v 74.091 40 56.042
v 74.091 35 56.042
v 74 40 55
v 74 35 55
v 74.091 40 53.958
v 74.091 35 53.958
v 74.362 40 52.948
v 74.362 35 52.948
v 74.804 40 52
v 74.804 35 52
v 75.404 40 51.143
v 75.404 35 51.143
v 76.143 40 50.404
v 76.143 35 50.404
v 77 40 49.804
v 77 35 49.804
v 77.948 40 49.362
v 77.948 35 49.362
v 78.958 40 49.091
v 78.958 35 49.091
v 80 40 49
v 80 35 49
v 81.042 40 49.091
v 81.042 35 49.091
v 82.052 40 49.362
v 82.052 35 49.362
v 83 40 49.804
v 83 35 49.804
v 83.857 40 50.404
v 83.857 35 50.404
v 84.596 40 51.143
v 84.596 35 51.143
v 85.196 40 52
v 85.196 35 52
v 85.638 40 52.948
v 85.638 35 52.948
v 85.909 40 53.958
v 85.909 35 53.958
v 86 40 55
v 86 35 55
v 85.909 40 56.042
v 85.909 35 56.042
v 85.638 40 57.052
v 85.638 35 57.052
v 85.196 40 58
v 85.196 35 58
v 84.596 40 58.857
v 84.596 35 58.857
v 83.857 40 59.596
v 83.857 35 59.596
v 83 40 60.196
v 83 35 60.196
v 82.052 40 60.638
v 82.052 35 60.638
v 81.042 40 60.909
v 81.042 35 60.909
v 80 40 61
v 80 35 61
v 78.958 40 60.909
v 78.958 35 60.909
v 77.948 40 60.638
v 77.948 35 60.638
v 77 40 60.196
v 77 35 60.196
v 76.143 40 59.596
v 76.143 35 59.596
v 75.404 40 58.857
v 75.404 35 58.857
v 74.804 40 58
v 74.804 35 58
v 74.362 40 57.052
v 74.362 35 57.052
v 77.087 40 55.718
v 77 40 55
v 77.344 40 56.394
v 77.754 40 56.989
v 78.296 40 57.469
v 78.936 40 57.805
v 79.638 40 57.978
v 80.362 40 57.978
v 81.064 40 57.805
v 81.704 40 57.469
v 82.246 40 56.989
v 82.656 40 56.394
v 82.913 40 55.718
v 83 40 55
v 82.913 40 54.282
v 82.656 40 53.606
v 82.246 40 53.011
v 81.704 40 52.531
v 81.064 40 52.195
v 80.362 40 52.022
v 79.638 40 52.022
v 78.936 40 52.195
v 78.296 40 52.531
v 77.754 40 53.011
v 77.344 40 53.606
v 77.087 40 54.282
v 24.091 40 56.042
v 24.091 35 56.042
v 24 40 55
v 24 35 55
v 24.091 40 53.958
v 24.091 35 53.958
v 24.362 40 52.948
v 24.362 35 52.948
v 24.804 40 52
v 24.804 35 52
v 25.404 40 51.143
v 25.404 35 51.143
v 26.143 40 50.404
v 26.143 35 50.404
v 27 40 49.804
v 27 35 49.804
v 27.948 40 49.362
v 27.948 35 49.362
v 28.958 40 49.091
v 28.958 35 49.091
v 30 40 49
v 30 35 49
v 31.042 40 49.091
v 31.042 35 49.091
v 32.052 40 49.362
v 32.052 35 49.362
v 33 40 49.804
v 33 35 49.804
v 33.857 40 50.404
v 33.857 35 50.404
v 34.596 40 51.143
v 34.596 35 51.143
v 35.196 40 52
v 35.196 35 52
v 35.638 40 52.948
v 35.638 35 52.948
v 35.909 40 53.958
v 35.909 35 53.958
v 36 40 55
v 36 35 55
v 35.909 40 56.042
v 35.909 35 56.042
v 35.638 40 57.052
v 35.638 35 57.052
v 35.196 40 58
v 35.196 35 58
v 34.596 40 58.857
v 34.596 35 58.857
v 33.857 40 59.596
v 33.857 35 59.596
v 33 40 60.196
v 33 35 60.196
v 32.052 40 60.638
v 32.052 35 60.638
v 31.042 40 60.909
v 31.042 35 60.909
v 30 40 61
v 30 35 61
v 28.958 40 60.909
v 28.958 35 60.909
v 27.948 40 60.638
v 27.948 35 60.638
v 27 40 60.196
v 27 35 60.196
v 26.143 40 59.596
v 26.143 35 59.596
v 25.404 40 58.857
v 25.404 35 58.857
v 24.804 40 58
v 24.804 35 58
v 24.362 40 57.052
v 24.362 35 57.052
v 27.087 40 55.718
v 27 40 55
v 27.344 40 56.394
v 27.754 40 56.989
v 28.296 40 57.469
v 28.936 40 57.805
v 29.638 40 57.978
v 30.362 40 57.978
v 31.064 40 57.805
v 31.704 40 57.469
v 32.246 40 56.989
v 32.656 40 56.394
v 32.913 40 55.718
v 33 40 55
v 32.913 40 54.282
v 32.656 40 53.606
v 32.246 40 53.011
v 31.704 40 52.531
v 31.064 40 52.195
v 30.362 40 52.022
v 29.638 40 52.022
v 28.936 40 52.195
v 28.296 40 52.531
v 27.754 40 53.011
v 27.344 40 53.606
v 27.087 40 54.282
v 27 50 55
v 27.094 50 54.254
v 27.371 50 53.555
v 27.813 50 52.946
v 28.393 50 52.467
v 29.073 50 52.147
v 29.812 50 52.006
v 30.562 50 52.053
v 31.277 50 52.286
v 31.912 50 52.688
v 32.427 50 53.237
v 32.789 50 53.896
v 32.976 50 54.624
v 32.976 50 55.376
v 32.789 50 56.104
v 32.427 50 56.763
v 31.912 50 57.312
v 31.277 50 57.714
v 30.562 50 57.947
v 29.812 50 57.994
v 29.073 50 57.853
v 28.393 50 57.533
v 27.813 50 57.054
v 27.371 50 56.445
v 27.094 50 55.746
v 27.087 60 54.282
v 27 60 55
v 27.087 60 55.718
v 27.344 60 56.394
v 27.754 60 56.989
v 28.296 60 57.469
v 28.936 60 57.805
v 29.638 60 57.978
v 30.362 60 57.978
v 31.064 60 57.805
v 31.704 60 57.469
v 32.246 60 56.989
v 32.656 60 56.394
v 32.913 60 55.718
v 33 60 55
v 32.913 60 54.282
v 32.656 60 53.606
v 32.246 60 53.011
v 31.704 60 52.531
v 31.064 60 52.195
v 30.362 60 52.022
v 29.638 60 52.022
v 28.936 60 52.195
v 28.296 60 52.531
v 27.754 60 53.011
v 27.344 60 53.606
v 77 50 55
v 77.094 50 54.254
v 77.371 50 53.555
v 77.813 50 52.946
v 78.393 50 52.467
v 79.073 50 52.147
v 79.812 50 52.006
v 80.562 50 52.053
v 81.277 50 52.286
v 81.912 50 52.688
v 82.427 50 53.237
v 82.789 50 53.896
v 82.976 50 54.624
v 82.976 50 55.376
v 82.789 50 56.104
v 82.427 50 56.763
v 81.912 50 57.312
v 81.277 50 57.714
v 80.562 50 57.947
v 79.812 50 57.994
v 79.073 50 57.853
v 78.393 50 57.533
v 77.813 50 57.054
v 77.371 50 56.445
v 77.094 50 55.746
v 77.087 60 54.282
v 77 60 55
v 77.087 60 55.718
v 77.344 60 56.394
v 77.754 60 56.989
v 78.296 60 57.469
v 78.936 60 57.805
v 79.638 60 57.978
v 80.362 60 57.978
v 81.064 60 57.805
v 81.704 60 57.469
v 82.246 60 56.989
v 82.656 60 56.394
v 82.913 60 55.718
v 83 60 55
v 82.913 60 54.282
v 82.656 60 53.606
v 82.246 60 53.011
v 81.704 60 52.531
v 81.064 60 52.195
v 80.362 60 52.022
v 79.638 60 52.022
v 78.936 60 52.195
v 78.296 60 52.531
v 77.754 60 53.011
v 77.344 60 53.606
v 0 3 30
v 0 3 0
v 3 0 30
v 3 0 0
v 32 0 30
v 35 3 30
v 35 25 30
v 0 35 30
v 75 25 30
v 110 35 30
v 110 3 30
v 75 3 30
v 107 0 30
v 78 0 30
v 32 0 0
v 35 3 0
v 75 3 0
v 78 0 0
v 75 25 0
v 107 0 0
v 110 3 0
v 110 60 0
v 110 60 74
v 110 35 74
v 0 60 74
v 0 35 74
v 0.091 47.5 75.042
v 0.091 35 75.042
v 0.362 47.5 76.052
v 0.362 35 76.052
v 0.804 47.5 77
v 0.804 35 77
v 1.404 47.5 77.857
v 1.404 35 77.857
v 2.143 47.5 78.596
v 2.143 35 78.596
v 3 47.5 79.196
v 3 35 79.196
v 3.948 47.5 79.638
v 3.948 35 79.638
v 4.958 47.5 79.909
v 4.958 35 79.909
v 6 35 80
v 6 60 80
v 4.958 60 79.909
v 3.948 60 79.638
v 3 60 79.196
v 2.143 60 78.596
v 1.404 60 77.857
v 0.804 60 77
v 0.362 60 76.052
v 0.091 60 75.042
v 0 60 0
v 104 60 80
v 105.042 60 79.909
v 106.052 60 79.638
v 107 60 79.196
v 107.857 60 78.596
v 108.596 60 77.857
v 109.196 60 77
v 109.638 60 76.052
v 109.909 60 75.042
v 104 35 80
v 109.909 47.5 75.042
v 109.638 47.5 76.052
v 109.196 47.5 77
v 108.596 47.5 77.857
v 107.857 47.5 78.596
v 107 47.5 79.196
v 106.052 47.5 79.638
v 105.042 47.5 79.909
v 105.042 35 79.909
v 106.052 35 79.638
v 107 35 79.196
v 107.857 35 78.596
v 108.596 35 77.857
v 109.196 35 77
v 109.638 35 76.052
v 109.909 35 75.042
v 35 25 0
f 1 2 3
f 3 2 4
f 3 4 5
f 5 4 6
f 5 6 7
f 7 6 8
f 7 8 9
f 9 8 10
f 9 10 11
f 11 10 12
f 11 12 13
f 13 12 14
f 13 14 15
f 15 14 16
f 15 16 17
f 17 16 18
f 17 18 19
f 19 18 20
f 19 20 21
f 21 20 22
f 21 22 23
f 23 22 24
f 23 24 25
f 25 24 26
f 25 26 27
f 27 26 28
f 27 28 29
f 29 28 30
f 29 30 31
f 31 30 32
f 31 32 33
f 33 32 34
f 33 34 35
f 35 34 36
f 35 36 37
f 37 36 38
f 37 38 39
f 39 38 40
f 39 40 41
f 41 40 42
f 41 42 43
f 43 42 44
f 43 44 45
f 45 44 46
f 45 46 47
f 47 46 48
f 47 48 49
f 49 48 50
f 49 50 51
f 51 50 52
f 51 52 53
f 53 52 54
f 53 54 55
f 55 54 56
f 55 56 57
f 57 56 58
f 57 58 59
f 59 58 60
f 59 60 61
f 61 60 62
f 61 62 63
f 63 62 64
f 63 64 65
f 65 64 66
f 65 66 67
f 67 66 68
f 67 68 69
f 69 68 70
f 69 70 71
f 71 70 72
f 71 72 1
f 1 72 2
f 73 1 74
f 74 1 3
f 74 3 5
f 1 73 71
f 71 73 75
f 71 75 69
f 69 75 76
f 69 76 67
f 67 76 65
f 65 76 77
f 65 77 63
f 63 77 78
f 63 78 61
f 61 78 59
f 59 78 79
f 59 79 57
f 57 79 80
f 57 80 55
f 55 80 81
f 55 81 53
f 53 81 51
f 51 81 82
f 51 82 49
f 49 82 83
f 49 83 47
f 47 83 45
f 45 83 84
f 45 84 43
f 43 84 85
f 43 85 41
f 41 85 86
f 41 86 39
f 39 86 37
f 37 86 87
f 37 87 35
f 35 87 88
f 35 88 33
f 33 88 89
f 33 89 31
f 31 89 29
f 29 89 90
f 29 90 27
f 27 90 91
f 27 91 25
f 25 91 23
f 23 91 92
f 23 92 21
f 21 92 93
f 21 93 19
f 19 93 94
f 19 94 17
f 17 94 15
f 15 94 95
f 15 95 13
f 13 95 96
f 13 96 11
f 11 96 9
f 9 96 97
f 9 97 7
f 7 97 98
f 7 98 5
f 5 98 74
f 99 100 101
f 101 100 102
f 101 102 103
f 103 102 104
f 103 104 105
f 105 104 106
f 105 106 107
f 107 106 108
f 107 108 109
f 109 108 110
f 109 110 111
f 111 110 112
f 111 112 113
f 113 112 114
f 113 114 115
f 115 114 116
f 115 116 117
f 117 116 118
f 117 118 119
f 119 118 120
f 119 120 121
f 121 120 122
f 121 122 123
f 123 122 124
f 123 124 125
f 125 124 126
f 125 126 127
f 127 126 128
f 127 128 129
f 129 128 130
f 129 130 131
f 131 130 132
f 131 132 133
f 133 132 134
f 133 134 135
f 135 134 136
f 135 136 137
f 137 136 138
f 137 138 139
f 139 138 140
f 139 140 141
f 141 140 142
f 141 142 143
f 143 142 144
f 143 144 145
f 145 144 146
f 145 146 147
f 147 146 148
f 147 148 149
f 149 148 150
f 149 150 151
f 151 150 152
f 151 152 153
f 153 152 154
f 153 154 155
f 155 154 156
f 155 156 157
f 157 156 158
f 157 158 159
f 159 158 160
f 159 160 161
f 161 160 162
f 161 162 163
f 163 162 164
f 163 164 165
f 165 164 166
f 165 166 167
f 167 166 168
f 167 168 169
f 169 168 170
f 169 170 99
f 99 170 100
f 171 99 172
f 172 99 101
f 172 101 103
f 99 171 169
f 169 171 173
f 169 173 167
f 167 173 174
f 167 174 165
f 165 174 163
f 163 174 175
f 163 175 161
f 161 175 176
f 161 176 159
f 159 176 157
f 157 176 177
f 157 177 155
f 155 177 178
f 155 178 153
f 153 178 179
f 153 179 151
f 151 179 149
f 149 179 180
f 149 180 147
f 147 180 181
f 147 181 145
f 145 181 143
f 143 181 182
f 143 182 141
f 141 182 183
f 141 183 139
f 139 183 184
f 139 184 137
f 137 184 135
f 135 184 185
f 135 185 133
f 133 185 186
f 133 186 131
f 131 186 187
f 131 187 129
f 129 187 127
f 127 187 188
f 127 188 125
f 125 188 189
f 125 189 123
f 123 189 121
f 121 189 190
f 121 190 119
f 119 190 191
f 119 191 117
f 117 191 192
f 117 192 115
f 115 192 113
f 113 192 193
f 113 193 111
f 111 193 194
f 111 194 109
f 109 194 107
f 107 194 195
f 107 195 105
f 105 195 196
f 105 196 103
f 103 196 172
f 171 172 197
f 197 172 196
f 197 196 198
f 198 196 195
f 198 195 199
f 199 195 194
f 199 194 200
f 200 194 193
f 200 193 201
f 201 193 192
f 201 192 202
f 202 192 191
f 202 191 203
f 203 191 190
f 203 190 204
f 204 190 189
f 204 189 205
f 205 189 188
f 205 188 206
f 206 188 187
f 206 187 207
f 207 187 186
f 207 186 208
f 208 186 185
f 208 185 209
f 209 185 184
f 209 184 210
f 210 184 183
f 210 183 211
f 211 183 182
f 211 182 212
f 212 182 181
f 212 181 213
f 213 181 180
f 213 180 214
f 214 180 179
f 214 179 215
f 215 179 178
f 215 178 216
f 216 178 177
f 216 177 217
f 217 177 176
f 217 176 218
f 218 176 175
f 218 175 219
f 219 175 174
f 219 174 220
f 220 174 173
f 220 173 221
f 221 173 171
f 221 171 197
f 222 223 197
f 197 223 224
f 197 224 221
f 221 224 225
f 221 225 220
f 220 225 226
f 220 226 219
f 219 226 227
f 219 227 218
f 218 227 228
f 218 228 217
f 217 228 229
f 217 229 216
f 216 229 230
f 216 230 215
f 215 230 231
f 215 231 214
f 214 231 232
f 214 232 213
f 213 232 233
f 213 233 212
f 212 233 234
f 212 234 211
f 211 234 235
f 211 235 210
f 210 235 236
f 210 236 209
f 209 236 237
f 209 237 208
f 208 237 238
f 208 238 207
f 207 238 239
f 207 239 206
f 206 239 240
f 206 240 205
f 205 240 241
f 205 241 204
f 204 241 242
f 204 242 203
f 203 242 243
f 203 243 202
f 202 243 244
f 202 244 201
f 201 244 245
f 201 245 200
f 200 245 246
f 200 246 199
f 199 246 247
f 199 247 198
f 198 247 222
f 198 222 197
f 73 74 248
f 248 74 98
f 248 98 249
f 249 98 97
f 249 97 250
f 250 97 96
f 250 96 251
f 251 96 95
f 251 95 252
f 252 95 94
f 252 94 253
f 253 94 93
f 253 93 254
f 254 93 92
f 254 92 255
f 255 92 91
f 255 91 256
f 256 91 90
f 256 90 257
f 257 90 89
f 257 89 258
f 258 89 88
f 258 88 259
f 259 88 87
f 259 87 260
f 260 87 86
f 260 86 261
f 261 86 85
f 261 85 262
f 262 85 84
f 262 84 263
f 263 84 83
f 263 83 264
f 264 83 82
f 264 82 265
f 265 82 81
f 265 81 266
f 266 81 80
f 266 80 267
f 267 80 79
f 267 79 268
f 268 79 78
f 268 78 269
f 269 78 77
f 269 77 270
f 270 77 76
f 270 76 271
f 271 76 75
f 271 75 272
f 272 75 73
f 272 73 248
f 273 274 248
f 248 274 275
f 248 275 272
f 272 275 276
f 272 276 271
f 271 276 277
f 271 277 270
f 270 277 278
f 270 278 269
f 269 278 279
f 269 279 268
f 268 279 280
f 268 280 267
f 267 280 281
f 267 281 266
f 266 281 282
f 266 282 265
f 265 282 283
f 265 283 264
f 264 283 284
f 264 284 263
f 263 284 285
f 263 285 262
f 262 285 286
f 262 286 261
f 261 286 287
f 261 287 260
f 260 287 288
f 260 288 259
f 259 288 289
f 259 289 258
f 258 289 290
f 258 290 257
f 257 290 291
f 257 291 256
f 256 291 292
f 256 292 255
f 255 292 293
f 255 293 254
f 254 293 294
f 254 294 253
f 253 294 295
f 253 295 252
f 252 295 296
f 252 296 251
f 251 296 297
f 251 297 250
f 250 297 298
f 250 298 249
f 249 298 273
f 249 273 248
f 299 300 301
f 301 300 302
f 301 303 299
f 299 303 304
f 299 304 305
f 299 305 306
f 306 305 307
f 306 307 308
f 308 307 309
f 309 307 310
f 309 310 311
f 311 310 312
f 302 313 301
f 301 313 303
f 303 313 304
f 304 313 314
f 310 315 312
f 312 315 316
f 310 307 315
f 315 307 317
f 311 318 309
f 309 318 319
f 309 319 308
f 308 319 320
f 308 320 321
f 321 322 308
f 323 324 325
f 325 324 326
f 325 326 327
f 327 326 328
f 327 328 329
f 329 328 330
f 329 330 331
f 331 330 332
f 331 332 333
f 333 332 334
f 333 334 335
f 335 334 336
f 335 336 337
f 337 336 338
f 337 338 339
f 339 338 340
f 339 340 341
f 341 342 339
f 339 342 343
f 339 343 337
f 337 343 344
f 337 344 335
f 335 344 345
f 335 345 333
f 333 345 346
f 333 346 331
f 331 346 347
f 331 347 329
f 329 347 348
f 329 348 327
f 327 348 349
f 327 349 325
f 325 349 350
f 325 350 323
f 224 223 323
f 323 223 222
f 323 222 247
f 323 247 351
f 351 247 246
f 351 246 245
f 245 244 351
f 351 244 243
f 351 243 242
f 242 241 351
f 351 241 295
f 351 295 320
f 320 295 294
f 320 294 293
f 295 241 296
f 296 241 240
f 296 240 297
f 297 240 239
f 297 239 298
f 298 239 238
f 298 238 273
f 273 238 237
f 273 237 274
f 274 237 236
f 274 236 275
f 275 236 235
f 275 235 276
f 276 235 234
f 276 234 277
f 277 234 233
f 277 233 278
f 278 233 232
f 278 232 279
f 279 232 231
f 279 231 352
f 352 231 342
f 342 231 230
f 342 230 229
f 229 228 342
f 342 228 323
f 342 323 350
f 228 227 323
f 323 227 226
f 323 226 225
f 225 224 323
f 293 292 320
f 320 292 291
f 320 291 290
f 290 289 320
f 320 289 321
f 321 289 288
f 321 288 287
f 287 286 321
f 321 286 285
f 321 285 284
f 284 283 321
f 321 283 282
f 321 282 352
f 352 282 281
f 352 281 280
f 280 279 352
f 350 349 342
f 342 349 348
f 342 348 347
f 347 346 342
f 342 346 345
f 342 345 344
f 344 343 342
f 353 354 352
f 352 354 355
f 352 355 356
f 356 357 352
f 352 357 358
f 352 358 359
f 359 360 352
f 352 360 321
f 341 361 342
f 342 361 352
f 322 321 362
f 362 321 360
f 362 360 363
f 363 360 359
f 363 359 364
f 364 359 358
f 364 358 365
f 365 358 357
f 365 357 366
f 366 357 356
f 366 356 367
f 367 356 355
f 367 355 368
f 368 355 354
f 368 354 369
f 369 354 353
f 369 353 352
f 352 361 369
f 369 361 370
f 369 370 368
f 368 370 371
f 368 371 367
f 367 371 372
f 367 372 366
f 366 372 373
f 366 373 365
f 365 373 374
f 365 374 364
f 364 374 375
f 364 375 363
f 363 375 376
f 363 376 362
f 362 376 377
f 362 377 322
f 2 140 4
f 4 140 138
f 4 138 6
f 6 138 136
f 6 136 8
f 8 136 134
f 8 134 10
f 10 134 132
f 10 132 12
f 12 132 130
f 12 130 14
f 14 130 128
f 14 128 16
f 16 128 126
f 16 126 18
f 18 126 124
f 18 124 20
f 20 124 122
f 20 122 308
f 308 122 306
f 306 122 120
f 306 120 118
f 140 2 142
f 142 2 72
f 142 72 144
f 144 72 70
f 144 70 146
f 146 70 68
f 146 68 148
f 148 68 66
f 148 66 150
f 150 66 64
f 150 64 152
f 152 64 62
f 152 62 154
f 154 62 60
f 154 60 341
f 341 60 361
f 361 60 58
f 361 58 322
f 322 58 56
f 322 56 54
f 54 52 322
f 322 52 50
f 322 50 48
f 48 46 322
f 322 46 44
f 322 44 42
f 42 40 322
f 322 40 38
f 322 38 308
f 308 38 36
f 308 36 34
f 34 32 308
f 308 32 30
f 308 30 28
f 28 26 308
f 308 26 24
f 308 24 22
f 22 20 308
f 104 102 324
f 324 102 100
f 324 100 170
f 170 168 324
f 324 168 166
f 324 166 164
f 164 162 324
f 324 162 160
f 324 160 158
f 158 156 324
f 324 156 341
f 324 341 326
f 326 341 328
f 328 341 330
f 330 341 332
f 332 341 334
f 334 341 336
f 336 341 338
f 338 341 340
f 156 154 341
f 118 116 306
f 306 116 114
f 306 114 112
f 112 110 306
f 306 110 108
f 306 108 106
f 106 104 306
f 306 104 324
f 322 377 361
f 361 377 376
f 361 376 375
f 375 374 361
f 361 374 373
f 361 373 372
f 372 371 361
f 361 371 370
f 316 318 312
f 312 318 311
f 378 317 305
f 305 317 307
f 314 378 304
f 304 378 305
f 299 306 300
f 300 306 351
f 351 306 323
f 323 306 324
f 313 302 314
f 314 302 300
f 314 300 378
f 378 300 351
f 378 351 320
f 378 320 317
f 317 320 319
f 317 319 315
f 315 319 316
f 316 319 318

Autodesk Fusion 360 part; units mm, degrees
sketch "Sketch1" plane through (0, 0, 0) normal (0, 0, 1) x (1, 0, 0)
  line L0 (0, 0) -> (110, 0)
  line L1 (110, 0) -> (110, 60)
  line L2 (110, 60) -> (0, 60)
  line L3 (0, 60) -> (0, 0)
  line L4 (0, 60) -> (110, 60)
  line L5 (110, 60) -> (110, 35)
  line L6 (110, 35) -> (0, 35)
  line L7 (0, 35) -> (0, 60)
  line L8 (75, 25) -> (35, 25)
  line L9 (35, 25) -> (35, 0)
  line L10 (75, 0) -> (75, 25)
  line L11 (75, 25) -> (35, -25) construction
  line L12 (35, 25) -> (75, -25) construction
  point P0 (55, 0)
  dimension "d12" = 110
  dimension "d13" = 60
  dimension "d14" = 110
  dimension "d15" = 25
  dimension "d16" = 40
  dimension "d17" = 50
extrude "Extrude1" add sketch "Sketch1" along normal blind 30 contours L0 L1 L3 L6 L8 L9 L10
extrude "Extrude2" add sketch "Sketch1" along normal blind 80 contours L1 L2 L3 L4 L5 L6 L7
fillet "Fillet1" radius 6 2 edges at (110, 47.5, 80) (0, 47.5, 80)
chamfer "Chamfer1" distance 3 angle 45 4 edges at (110, 0, 15) (75, 0, 15) (35, 0, 15) (0, 0, 15)
sketch "Sketch2" plane through (0, 35, 0) normal (0, -1, 0) x (1, 0, 0)
  arc A0 (6, 80) -> (0, 74) centre (6, 74) ccw
  line L0 (0, 74) -> (0, 30)
  line L1 (0, 30) -> (110, 30)
  line L2 (110, 30) -> (110, 74)
  arc A1 (110, 74) -> (104, 80) centre (104, 74) ccw
  line L3 (104, 80) -> (6, 80)
  line L4 (55, 80) -> (55, 30) construction
  circle A2 centre (80, 55) radius 6
  circle A3 centre (80, 55) radius 3
  circle A4 centre (30, 55) radius 6
  circle A5 centre (30, 55) radius 3
  dimension "d27" = 12
  dimension "d28" = 6
  dimension "d29" = 25
  dimension "d32" = 25
extrude "Extrude3" cut sketch "Sketch2" against normal blind 25 contours A3 | A5
extrude "Extrude4" cut sketch "Sketch2" against normal blind 5 contours A4
extrude "Extrude5" cut sketch "Sketch2" against normal blind 5 contours A2
equation "width = 60 mm"
equation "length = 110 mm"
equation "base_height = 30 mm"
equation "back_height = 80 mm"
equation "back_width = 25 mm"
equation "countersink_diameter = 12 mm"
equation "hole_diameter = 6 mm"
equation "countersink_depth = 5 mm"
equation "cut_depth = 25 mm"
equation "cut_width = 40 mm"
equation "d12 = length"
equation "d13 = width"
equation "d14 = length"
equation "d15 = back_width"
equation "d16 = cut_width"
equation "d17 = cut_depth * 2"
equation "top_radius = 6 mm"
equation "d19 = base_height"
equation "d21 = back_height"
equation "d24 = top_radius"
equation "chamfer = 3 mm"
equation "d26 = chamfer"
equation "d27 = countersink_diameter"
equation "d28 = hole_diameter"
equation "d29 = hole_distance_from_top"
equation "hole_distance_from_top = 25 mm"
equation "distance_between_holes = 50 mm"
equation "d32 = distance_between_holes / 2"
equation "d33 = -back_width"
equation "d35 = -countersink_depth"
equation "d37 = -countersink_depth"
